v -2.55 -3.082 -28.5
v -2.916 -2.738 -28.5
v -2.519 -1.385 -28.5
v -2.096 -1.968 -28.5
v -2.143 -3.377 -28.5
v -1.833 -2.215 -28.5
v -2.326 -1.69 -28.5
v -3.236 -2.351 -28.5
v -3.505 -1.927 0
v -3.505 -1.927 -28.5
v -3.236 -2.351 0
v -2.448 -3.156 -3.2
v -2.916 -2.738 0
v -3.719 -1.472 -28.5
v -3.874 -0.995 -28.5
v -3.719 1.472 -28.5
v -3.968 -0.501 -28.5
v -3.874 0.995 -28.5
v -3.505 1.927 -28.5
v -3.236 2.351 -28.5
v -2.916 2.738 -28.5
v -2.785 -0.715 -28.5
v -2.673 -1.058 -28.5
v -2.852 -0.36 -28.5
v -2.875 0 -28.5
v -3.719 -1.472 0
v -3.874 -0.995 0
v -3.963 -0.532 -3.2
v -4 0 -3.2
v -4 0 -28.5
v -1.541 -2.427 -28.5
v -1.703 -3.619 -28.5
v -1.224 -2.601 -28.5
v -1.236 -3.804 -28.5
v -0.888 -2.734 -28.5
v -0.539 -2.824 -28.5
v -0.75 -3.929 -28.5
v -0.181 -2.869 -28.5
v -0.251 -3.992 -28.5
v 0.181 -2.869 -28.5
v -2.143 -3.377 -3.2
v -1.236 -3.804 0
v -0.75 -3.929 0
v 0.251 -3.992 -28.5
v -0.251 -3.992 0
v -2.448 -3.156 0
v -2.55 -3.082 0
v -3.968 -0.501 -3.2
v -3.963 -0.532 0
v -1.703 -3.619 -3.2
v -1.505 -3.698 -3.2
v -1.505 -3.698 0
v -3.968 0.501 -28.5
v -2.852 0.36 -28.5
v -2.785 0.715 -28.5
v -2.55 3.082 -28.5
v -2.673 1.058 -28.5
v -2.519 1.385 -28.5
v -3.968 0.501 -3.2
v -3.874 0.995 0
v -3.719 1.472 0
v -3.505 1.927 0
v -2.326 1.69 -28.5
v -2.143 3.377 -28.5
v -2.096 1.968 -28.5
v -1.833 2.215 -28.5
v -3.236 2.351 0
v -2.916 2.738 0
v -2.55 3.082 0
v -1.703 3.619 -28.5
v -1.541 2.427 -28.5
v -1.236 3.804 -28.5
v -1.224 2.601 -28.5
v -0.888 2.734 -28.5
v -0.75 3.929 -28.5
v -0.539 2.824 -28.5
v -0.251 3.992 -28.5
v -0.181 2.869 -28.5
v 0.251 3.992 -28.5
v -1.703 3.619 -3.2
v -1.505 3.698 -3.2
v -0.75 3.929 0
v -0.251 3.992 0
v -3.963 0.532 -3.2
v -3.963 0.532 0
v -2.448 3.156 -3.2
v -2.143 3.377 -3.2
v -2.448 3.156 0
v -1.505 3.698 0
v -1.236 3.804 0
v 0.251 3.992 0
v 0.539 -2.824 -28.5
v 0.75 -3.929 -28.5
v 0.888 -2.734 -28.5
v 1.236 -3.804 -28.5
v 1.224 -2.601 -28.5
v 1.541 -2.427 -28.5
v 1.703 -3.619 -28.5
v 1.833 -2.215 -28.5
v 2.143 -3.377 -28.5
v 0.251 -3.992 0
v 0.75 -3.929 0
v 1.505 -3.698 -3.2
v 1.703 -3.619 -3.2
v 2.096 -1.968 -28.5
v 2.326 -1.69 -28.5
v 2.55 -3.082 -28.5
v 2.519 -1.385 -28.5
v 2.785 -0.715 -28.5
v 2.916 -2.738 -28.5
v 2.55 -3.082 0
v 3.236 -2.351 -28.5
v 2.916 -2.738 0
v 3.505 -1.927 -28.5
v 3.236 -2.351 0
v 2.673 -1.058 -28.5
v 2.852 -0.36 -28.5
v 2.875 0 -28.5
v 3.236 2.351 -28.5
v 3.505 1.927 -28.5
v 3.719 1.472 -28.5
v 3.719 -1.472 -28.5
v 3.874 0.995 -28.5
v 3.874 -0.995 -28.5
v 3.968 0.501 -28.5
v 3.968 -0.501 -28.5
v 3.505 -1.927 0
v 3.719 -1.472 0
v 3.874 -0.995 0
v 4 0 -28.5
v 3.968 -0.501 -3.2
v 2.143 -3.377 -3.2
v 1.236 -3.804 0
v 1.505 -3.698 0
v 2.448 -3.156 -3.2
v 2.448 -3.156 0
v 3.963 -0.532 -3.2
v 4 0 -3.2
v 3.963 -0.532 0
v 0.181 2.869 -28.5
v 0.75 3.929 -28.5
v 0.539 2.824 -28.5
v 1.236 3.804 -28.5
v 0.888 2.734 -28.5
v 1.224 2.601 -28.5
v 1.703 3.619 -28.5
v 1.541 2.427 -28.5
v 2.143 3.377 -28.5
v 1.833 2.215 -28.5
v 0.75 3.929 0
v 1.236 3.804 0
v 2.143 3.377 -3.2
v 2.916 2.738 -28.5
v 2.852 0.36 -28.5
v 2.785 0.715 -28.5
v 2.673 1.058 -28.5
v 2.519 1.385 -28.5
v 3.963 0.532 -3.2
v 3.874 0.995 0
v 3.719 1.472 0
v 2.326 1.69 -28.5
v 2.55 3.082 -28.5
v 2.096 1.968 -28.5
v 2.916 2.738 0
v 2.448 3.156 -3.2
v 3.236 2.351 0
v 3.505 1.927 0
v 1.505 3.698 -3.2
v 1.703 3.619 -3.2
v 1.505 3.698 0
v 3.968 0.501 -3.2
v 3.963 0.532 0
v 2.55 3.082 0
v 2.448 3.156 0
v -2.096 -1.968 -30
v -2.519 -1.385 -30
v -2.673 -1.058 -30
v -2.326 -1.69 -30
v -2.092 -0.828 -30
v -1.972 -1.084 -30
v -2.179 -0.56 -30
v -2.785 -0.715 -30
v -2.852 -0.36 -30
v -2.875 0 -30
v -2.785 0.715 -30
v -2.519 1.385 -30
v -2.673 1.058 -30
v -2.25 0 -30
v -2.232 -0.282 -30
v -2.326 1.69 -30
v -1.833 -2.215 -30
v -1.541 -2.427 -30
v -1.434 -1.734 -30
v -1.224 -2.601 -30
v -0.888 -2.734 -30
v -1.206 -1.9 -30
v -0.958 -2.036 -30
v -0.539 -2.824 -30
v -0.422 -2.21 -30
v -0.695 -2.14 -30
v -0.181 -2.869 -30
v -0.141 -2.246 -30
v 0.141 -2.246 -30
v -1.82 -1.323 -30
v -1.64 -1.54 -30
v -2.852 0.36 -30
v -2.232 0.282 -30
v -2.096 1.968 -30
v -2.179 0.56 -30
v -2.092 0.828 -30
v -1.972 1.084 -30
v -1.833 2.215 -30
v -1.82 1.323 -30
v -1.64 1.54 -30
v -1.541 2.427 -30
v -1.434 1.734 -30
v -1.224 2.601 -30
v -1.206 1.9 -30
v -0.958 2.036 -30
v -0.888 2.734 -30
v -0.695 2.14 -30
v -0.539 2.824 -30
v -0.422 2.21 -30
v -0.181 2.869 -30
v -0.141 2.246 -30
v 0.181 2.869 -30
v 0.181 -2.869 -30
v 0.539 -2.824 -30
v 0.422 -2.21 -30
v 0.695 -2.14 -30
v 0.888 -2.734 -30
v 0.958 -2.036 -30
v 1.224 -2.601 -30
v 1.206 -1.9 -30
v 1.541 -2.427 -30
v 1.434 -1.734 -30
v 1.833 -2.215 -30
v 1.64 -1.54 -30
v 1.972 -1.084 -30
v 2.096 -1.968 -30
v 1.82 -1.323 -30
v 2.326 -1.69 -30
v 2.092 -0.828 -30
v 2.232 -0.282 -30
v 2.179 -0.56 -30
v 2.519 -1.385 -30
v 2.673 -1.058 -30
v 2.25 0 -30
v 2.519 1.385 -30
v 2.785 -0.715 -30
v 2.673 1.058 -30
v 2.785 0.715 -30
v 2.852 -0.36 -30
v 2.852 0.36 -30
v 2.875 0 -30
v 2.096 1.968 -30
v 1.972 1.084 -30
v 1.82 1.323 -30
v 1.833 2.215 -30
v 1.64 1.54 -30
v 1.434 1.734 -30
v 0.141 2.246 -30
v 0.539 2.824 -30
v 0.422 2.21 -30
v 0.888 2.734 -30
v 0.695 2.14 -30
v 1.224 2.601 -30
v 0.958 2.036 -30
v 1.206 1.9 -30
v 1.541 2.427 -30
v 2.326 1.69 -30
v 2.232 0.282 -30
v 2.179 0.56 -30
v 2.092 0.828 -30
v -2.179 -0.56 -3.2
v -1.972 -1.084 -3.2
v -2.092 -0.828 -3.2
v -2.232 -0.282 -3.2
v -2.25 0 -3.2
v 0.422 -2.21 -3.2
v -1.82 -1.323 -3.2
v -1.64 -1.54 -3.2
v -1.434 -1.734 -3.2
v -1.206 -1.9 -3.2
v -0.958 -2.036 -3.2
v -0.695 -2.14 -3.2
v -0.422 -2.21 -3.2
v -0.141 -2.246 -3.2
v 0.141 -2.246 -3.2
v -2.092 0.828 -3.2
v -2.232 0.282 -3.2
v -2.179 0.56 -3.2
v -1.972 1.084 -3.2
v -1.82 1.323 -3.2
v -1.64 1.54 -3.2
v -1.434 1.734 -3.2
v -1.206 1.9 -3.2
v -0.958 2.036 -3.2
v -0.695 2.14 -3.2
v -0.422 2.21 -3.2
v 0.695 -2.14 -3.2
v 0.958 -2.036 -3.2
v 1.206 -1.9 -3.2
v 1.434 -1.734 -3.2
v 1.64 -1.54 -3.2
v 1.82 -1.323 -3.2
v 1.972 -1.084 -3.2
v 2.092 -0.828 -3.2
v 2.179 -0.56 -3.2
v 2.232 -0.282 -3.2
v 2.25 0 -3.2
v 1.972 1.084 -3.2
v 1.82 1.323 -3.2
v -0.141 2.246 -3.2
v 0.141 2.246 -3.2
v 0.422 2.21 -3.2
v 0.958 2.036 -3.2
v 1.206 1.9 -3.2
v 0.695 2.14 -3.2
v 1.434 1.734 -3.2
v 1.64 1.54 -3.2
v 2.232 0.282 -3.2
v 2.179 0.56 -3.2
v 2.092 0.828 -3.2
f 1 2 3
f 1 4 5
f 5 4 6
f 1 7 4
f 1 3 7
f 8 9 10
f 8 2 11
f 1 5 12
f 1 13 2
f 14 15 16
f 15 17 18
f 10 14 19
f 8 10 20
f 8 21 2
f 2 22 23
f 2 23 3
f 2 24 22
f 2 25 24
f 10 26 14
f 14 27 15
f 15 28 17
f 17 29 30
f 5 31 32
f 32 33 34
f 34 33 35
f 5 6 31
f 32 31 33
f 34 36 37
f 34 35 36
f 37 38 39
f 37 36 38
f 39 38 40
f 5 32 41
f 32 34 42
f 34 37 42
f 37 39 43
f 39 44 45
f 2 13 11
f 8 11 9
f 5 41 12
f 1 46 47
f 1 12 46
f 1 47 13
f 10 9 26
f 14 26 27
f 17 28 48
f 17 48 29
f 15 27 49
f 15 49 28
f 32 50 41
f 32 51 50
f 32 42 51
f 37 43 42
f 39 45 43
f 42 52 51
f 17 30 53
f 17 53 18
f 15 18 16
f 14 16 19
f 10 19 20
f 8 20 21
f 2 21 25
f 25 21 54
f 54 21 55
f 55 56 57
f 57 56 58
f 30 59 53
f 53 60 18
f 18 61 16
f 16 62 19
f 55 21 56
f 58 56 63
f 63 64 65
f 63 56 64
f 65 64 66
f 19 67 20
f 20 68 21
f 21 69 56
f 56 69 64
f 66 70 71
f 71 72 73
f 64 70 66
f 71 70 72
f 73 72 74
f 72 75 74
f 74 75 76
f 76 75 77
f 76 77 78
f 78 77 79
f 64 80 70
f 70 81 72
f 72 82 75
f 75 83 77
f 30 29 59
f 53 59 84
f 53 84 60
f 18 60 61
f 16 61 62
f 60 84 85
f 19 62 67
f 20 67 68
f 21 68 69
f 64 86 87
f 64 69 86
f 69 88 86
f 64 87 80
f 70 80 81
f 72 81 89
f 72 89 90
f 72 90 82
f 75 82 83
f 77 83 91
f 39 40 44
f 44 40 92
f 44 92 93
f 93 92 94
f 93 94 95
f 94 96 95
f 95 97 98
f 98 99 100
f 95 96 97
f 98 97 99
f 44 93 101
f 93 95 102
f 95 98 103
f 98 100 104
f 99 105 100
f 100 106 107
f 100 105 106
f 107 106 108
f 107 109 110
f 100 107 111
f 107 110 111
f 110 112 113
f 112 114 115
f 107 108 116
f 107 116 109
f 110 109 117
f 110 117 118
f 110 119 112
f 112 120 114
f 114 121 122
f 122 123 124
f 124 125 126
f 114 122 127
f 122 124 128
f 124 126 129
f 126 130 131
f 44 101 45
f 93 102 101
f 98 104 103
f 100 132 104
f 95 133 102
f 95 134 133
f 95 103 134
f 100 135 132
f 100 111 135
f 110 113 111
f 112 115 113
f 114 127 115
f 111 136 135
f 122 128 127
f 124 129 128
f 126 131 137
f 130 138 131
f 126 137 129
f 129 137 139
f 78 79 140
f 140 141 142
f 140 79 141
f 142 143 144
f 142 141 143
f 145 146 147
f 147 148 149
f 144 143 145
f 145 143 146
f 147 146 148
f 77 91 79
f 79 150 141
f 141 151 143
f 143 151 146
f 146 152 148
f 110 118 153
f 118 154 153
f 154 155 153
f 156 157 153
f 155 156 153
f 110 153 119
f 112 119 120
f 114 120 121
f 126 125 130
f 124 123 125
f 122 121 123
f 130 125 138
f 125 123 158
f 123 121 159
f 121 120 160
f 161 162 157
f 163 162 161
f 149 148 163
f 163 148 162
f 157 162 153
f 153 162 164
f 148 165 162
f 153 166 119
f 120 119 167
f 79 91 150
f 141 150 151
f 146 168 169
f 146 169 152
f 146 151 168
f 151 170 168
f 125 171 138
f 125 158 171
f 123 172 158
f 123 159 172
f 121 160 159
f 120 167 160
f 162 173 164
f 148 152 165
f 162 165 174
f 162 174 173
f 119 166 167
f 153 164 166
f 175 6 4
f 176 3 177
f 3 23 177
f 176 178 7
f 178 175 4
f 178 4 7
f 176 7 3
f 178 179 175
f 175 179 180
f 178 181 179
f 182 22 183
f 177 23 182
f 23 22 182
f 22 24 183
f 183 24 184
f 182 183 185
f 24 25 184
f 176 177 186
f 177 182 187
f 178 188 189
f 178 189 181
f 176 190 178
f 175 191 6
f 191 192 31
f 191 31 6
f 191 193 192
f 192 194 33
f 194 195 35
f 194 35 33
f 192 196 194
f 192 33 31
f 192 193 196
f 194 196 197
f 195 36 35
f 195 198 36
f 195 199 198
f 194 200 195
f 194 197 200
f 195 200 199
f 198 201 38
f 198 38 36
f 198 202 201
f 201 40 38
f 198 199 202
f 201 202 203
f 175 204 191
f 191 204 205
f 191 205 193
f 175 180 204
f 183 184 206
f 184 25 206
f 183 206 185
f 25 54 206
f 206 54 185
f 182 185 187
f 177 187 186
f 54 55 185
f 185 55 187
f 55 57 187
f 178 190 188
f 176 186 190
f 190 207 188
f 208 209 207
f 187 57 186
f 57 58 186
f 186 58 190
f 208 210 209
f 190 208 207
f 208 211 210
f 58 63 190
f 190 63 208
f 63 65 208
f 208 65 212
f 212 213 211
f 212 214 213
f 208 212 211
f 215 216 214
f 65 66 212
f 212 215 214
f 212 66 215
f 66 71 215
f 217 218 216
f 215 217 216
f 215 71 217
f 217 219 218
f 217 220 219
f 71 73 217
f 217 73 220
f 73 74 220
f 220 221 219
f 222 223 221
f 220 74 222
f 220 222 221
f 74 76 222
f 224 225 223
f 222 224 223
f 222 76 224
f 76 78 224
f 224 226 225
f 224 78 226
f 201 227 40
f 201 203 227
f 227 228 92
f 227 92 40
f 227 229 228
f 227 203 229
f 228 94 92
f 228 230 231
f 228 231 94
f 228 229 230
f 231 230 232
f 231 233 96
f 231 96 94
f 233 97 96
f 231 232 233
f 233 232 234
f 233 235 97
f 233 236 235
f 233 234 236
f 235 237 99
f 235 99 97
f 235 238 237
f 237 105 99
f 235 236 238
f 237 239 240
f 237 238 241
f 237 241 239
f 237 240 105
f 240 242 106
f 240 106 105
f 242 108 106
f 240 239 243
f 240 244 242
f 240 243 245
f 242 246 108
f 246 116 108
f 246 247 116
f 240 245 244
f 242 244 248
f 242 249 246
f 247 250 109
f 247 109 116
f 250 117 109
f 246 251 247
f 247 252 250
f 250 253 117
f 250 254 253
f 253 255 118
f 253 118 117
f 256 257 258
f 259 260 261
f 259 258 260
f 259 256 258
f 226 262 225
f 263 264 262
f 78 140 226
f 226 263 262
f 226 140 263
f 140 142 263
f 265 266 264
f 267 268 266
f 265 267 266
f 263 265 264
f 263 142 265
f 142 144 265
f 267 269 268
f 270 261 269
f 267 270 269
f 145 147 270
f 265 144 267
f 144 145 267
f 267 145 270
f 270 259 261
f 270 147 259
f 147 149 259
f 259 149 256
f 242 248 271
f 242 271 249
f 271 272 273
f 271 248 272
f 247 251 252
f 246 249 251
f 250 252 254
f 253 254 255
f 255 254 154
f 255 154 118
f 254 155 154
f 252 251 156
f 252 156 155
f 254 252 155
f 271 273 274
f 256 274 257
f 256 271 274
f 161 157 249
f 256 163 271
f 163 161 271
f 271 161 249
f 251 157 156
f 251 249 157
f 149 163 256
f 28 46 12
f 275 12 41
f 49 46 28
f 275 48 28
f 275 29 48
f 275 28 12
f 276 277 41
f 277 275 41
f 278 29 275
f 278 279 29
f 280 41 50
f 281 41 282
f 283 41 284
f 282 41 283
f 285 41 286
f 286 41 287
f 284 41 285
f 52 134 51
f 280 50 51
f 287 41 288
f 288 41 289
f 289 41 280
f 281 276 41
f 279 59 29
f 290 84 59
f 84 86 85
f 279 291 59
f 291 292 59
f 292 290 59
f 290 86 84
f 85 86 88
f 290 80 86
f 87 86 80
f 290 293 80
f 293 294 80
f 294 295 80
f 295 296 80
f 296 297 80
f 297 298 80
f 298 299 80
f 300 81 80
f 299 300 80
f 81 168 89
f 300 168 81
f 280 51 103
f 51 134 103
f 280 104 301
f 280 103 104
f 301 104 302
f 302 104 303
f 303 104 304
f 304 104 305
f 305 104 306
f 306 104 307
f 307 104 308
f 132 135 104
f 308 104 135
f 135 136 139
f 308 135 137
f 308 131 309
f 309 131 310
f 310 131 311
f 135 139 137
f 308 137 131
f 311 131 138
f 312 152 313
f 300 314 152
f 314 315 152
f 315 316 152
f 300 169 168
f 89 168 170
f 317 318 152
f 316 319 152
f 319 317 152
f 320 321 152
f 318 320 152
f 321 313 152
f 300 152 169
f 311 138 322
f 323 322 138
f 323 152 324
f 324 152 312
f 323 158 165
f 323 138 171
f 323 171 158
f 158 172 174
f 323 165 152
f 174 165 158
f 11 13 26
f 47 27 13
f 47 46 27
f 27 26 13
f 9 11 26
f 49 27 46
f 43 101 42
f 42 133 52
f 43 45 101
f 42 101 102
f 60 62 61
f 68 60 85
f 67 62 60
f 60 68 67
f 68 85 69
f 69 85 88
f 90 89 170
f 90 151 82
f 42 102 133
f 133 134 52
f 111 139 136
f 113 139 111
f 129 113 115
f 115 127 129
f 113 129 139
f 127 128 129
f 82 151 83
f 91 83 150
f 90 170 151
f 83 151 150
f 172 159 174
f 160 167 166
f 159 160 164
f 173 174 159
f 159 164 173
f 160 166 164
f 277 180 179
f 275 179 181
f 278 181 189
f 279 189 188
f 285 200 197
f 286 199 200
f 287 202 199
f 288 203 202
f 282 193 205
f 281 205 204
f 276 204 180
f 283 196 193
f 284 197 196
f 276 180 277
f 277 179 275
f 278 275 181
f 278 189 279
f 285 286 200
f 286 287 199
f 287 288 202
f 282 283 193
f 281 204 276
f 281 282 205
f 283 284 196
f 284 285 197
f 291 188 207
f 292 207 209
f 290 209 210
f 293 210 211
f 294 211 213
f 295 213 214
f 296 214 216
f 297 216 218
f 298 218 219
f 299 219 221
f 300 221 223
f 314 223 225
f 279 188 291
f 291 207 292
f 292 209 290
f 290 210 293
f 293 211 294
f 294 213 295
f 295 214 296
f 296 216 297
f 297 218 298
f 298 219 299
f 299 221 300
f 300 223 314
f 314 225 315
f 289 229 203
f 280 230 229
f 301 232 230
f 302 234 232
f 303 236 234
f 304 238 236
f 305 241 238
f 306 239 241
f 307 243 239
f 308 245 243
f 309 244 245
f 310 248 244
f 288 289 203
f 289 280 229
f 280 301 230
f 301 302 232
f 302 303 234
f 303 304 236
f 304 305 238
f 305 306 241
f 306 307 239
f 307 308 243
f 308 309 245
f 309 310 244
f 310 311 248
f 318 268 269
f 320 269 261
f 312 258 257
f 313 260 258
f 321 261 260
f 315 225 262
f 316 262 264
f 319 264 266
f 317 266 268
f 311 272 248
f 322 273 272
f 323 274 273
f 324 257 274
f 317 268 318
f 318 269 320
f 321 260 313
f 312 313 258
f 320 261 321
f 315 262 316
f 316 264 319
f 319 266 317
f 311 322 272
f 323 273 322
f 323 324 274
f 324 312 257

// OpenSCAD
$fn = 50;

difference() {
	union() {
		translate(v = [0, 0, -28.5]) {
			cylinder(h = 31.5, r = 4.0);
		}
		#translate(v = [0, 0, -30.0]) {
			cylinder(h = 30, r = 2.875);
		}
	}
	union() {
		translate(v = [0, 0, 0]) {
			rotate(a = [0, 0, 0]) {
				difference() {
					union() {
						translate(v = [0, 0, -3.2]) {
							linear_extrude(height = 3.2) {
								polygon(points = [[4.2698, 0.0], [2.1349000000000005, 3.697755269078796], [-2.134899999999999, 3.6977552690787965], [-4.2698, 5.228996902999369e-16], [-2.134900000000002, -3.6977552690787956], [2.1348999999999974, -3.697755269078798]]);
							}
						}
					}
					union();
				}
			}
		}
		#cylinder(h = 3, r = 5.0);
		#translate(v = [0, 0, -100.0]) {
			cylinder(h = 200, r = 2.25);
		}
	}
}
